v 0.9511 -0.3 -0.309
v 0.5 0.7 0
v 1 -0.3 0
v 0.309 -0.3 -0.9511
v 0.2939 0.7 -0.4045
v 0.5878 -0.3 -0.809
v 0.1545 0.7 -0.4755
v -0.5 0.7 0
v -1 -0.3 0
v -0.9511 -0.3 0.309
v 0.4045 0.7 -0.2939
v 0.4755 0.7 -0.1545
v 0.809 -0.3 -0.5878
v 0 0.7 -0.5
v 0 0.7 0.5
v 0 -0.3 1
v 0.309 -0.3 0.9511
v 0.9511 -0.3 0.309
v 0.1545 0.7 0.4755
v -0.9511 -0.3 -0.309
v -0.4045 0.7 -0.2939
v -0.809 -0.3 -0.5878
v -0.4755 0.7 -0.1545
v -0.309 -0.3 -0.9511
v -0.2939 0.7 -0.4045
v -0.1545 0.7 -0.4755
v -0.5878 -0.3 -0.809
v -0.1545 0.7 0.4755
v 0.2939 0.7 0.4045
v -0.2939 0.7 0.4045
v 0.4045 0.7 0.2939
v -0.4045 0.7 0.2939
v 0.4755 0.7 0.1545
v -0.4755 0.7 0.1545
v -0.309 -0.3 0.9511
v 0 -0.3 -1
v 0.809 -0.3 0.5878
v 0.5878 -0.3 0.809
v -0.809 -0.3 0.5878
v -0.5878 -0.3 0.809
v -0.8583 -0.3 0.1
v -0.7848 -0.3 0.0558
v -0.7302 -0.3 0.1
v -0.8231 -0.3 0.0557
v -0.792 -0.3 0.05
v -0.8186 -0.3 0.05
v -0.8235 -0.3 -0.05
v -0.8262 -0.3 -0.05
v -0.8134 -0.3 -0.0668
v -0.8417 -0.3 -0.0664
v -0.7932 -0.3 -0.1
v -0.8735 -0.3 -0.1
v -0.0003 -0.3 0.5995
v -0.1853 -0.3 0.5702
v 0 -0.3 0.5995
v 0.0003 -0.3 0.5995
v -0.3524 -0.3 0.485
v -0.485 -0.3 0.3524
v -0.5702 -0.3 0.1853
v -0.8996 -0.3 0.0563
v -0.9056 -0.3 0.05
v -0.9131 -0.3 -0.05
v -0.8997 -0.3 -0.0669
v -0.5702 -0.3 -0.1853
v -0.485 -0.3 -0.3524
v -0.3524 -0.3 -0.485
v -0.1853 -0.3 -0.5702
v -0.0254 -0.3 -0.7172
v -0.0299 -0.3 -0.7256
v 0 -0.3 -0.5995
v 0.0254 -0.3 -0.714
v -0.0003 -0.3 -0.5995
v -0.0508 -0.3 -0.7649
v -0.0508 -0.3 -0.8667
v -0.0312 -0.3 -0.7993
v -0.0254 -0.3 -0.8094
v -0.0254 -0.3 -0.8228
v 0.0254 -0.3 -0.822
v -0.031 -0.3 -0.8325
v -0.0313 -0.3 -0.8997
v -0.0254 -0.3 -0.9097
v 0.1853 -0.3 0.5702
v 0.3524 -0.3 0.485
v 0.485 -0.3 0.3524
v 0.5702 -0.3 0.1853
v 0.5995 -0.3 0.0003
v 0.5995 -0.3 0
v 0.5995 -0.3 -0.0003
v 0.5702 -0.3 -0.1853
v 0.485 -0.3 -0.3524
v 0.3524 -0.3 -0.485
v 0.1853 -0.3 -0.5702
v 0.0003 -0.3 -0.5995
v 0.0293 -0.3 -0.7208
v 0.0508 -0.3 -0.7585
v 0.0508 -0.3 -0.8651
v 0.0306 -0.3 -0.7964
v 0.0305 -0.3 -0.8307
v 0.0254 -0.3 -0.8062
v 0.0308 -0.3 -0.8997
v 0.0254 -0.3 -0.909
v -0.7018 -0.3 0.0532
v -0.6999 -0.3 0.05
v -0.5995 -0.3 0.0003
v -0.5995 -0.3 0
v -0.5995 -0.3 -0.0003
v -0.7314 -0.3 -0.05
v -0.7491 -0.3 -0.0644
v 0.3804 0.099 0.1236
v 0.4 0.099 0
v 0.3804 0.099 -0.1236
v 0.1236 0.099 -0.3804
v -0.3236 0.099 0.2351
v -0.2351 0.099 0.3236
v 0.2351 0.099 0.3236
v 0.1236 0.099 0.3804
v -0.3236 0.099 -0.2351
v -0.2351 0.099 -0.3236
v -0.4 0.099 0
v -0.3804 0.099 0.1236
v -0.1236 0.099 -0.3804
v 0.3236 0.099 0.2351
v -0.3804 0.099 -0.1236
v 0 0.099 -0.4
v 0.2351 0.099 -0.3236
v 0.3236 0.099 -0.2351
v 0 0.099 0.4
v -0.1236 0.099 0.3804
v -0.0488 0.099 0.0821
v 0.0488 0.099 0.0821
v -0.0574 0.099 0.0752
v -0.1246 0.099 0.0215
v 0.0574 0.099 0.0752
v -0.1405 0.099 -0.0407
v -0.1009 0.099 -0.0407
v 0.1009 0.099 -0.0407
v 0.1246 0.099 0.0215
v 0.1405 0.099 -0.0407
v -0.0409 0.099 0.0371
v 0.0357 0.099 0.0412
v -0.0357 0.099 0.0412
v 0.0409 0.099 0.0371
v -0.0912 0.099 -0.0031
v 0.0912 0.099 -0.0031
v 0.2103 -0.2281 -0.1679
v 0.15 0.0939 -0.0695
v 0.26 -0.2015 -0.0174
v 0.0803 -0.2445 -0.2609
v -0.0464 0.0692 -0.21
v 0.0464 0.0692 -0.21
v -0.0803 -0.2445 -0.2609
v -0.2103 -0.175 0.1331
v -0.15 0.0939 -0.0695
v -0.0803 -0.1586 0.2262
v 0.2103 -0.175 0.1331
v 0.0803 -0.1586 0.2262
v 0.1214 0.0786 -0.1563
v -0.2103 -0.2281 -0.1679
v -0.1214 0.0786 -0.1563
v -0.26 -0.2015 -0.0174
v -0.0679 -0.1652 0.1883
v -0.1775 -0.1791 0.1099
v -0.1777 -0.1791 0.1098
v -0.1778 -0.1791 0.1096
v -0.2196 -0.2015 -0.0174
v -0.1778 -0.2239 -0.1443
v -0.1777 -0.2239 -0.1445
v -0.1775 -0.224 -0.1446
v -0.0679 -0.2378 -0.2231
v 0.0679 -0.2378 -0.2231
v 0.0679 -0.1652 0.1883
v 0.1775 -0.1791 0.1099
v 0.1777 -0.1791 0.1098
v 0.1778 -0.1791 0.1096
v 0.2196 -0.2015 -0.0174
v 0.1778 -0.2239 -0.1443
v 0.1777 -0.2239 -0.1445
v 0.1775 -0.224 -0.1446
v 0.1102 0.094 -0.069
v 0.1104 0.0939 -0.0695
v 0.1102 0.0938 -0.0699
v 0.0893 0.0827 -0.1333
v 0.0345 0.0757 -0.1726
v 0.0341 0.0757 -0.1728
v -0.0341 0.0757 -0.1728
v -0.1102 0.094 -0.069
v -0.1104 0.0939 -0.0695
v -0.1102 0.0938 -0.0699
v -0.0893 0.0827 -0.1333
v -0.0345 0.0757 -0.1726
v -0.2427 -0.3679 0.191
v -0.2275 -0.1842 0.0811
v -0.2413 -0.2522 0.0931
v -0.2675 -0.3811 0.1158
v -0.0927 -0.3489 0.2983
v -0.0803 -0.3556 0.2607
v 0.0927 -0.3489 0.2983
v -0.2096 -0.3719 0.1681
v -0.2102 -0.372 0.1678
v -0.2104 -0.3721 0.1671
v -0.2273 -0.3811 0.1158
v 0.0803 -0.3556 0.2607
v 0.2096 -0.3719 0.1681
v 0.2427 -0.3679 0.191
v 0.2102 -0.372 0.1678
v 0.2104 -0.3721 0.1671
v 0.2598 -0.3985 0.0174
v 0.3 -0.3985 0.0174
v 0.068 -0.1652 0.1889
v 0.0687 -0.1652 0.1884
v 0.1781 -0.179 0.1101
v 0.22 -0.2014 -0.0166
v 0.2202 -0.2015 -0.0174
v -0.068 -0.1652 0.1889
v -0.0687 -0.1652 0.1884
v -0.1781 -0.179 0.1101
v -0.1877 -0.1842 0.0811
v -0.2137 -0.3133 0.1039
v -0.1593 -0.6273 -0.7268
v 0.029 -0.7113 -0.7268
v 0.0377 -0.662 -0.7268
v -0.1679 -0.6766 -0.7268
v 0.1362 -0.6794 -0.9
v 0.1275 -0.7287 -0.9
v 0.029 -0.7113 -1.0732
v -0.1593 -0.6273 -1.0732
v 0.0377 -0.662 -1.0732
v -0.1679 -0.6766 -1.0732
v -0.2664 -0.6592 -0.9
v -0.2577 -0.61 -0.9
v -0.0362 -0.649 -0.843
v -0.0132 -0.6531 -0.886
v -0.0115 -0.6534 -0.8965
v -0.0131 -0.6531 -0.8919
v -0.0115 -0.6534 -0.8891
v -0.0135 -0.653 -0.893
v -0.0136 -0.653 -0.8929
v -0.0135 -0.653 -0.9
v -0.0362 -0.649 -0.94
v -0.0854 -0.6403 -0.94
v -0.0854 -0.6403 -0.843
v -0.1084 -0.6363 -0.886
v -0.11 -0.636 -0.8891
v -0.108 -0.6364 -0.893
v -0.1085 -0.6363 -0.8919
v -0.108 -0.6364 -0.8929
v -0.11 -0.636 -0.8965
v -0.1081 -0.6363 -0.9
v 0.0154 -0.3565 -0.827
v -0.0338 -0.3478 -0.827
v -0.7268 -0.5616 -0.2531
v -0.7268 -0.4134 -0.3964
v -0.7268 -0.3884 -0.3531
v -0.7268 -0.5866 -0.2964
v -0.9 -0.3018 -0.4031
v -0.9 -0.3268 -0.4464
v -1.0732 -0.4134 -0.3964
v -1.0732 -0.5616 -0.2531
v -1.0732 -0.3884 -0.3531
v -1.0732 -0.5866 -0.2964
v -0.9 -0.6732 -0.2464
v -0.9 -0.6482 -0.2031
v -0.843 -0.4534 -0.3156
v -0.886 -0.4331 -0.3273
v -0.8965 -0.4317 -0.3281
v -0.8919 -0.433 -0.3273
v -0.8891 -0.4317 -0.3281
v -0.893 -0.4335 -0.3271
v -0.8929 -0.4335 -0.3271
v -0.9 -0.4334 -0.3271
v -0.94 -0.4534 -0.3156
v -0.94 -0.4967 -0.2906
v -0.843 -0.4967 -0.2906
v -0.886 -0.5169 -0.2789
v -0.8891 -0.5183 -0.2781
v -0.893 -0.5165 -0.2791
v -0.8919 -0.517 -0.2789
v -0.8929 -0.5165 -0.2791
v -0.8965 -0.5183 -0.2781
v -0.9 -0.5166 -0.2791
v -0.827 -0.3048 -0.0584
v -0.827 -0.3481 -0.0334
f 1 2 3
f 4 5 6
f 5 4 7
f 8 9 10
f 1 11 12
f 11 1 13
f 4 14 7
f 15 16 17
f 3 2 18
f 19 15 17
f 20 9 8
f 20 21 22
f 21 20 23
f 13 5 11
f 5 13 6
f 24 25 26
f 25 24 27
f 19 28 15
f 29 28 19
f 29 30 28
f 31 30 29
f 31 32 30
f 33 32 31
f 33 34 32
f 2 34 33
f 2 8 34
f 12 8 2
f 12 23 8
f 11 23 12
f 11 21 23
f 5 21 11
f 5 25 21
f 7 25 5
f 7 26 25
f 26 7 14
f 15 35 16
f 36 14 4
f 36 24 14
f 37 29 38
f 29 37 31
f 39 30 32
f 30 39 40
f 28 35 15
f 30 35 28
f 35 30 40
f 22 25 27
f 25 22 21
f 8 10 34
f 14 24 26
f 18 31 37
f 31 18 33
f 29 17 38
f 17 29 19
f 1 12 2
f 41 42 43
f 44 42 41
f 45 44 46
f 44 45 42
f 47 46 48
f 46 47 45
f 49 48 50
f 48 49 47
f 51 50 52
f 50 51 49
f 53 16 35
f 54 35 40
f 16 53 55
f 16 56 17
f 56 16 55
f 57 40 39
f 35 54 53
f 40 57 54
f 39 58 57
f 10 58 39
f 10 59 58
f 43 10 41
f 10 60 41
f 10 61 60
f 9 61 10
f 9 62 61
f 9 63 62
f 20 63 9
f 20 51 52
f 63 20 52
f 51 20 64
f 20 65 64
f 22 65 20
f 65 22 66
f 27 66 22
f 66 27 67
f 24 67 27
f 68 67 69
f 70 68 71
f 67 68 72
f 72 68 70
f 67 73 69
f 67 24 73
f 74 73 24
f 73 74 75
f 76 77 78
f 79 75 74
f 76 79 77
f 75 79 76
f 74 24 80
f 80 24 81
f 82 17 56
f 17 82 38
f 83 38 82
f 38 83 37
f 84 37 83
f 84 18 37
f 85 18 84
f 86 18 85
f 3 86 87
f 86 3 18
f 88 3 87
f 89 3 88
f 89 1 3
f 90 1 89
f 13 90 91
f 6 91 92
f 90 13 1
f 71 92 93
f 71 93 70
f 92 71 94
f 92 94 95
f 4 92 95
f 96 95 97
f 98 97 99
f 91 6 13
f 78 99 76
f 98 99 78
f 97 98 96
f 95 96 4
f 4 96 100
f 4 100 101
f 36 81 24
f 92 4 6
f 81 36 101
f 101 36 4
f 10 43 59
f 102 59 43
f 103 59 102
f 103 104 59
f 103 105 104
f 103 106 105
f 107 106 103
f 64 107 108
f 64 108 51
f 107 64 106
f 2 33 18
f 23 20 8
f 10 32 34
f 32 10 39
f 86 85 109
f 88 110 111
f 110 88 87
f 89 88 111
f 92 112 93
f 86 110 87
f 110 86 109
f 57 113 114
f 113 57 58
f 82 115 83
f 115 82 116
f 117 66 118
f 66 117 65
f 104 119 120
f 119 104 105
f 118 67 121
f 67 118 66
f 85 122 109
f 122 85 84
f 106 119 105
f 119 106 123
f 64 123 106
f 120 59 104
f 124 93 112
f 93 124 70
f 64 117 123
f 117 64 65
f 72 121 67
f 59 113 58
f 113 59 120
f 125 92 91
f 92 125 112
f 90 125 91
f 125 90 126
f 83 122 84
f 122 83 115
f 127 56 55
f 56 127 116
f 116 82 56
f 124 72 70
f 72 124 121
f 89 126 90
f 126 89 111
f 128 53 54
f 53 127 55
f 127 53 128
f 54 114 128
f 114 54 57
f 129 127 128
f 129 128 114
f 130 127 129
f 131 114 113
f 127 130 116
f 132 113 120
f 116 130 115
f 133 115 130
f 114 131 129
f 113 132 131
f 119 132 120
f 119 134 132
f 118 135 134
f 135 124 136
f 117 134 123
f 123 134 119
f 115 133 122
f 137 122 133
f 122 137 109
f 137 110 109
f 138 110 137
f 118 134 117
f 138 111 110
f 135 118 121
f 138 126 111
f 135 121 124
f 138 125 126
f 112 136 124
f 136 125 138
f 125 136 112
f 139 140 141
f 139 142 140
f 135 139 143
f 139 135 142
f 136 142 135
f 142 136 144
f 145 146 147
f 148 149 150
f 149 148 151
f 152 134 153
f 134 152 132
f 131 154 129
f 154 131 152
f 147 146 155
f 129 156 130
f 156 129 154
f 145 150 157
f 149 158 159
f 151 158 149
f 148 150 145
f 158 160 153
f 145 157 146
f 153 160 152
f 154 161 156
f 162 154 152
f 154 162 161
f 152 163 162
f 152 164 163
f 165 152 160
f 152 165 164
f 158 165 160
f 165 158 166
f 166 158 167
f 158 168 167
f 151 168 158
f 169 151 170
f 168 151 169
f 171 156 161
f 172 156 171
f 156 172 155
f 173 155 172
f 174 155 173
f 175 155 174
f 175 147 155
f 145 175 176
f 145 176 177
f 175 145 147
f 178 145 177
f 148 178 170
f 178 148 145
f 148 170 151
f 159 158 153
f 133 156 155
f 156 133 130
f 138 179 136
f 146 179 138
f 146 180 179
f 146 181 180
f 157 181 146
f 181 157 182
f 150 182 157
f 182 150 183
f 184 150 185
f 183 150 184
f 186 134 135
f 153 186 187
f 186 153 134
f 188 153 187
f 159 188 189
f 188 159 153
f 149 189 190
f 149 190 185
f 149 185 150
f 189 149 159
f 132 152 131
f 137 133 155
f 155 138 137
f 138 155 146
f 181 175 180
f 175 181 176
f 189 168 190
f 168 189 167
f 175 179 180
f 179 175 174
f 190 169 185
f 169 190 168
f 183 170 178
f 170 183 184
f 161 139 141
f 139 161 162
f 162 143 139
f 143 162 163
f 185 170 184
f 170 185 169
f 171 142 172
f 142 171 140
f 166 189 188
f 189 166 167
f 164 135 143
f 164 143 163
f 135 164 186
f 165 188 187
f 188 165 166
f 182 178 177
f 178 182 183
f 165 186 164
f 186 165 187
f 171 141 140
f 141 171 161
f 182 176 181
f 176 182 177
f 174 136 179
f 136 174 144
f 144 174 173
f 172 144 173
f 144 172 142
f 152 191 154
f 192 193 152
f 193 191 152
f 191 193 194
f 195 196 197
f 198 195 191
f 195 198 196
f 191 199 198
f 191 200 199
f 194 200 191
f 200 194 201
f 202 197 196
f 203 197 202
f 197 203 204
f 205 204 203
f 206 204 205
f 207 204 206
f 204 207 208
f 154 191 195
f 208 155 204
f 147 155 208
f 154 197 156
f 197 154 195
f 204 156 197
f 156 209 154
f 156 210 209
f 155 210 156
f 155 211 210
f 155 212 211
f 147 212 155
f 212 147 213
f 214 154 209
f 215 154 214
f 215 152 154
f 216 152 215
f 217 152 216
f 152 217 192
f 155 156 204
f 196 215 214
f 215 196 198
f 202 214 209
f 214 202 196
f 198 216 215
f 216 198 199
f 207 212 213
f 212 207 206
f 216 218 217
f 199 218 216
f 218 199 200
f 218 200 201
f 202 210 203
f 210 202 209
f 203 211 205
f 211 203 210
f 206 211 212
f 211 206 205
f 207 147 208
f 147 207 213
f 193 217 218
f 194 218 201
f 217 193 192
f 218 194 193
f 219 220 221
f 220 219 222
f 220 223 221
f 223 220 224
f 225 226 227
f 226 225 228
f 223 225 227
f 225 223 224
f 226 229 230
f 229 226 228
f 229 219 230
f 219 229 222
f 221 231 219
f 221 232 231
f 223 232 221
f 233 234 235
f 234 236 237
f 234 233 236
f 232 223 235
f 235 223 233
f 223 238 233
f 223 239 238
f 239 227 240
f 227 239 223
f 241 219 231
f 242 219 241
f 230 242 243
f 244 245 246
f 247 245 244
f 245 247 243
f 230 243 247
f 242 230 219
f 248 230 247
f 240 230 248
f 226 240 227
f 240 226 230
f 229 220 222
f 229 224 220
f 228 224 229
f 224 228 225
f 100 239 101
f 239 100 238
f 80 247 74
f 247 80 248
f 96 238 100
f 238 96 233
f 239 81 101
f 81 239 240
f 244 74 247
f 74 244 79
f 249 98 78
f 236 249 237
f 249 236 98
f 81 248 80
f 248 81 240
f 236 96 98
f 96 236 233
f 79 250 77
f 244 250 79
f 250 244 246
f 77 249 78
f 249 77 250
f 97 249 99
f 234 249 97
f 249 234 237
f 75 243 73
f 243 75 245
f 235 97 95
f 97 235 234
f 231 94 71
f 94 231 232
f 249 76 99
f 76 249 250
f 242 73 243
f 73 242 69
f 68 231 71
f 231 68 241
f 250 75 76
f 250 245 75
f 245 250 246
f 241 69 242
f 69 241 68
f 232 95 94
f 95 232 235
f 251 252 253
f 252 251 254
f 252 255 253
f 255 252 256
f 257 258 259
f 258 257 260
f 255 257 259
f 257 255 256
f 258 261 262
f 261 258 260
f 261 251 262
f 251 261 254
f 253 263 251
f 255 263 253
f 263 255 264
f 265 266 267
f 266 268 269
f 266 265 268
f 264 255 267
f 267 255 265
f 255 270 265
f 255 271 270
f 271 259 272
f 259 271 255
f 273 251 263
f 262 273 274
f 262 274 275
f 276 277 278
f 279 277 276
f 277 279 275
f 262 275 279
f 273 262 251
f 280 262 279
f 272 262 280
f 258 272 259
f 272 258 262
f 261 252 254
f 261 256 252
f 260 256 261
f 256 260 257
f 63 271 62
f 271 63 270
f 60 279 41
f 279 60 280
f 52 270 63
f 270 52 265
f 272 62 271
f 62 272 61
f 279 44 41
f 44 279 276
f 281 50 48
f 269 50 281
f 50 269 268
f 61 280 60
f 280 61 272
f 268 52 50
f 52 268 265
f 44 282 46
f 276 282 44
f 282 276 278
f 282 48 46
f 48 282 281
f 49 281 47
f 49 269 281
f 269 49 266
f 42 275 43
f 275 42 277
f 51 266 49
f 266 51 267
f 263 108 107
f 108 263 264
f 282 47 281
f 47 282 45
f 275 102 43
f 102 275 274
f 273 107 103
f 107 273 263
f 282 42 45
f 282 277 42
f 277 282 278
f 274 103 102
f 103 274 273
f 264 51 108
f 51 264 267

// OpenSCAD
$fn=20;
tol=0.001;
num_of_legs=4;

// Main geometry
rotate([-90, 0, 0]) translate([0, 0, -0.3]) {
    difference() {
        body();
        
    }
    rotate([-10, 0, 0]) translate([0, 0, -0.1]) {
        difference() {
            engine_nozzle();
            translate([0, 0, -0.8]) cube(1.0);
            translate([-0.9, -0.1, -0.8]) cube(1.0);
        }
    }
    for (i = [0 : 1 : num_of_legs-3]) {
        angle_offset = [10, -60, 30];
        rotate([0, angle_offset[i], 360 * i / num_of_legs]) translate([0, 0.9, -0.4]) leg();
    }
}

module body() {
    bottom = 1.0;
    top = 0.5;
    
    difference() {
        cylinder(r1=bottom, r2=top, h=1.0);
        translate([0, 0, -tol]) {
            cylinder(r1=bottom*0.6, r2=bottom*0.4, h=0.4);
        }
    }
}

module engine_nozzle() {
    $fn = 10;
    bottom = 0.3;
    middle = 0.26;
    top = 0.15;
    t = 0.04;
    h1 = 0.3;
    h2 = 0.2;
    
    translate([0, 0, h2]) difference() {
        cylinder(r1=middle, r2=top, h=h1);
        translate([0, 0, -tol]) cylinder(r1=middle-t, r2=top-t, h=h1+2*tol);
    }
    
    difference() {
        cylinder(r1=bottom, r2=middle, h=h2);
        translate([0, 0, -tol]) cylinder(r1=bottom-t, r2=middle-t, h=h2+2*tol);
    }
}

module leg() {
    $fn = 6;
    cylinder(r=0.2, h=0.05);
    translate([0, 0, 0.01]) rotate([5, 0, 0]) cylinder(d=0.1, h=0.5);
    translate([0, 0, 0.02]) rotate([20, 0, 0]) cylinder(d=0.1, h=0.5);
}
